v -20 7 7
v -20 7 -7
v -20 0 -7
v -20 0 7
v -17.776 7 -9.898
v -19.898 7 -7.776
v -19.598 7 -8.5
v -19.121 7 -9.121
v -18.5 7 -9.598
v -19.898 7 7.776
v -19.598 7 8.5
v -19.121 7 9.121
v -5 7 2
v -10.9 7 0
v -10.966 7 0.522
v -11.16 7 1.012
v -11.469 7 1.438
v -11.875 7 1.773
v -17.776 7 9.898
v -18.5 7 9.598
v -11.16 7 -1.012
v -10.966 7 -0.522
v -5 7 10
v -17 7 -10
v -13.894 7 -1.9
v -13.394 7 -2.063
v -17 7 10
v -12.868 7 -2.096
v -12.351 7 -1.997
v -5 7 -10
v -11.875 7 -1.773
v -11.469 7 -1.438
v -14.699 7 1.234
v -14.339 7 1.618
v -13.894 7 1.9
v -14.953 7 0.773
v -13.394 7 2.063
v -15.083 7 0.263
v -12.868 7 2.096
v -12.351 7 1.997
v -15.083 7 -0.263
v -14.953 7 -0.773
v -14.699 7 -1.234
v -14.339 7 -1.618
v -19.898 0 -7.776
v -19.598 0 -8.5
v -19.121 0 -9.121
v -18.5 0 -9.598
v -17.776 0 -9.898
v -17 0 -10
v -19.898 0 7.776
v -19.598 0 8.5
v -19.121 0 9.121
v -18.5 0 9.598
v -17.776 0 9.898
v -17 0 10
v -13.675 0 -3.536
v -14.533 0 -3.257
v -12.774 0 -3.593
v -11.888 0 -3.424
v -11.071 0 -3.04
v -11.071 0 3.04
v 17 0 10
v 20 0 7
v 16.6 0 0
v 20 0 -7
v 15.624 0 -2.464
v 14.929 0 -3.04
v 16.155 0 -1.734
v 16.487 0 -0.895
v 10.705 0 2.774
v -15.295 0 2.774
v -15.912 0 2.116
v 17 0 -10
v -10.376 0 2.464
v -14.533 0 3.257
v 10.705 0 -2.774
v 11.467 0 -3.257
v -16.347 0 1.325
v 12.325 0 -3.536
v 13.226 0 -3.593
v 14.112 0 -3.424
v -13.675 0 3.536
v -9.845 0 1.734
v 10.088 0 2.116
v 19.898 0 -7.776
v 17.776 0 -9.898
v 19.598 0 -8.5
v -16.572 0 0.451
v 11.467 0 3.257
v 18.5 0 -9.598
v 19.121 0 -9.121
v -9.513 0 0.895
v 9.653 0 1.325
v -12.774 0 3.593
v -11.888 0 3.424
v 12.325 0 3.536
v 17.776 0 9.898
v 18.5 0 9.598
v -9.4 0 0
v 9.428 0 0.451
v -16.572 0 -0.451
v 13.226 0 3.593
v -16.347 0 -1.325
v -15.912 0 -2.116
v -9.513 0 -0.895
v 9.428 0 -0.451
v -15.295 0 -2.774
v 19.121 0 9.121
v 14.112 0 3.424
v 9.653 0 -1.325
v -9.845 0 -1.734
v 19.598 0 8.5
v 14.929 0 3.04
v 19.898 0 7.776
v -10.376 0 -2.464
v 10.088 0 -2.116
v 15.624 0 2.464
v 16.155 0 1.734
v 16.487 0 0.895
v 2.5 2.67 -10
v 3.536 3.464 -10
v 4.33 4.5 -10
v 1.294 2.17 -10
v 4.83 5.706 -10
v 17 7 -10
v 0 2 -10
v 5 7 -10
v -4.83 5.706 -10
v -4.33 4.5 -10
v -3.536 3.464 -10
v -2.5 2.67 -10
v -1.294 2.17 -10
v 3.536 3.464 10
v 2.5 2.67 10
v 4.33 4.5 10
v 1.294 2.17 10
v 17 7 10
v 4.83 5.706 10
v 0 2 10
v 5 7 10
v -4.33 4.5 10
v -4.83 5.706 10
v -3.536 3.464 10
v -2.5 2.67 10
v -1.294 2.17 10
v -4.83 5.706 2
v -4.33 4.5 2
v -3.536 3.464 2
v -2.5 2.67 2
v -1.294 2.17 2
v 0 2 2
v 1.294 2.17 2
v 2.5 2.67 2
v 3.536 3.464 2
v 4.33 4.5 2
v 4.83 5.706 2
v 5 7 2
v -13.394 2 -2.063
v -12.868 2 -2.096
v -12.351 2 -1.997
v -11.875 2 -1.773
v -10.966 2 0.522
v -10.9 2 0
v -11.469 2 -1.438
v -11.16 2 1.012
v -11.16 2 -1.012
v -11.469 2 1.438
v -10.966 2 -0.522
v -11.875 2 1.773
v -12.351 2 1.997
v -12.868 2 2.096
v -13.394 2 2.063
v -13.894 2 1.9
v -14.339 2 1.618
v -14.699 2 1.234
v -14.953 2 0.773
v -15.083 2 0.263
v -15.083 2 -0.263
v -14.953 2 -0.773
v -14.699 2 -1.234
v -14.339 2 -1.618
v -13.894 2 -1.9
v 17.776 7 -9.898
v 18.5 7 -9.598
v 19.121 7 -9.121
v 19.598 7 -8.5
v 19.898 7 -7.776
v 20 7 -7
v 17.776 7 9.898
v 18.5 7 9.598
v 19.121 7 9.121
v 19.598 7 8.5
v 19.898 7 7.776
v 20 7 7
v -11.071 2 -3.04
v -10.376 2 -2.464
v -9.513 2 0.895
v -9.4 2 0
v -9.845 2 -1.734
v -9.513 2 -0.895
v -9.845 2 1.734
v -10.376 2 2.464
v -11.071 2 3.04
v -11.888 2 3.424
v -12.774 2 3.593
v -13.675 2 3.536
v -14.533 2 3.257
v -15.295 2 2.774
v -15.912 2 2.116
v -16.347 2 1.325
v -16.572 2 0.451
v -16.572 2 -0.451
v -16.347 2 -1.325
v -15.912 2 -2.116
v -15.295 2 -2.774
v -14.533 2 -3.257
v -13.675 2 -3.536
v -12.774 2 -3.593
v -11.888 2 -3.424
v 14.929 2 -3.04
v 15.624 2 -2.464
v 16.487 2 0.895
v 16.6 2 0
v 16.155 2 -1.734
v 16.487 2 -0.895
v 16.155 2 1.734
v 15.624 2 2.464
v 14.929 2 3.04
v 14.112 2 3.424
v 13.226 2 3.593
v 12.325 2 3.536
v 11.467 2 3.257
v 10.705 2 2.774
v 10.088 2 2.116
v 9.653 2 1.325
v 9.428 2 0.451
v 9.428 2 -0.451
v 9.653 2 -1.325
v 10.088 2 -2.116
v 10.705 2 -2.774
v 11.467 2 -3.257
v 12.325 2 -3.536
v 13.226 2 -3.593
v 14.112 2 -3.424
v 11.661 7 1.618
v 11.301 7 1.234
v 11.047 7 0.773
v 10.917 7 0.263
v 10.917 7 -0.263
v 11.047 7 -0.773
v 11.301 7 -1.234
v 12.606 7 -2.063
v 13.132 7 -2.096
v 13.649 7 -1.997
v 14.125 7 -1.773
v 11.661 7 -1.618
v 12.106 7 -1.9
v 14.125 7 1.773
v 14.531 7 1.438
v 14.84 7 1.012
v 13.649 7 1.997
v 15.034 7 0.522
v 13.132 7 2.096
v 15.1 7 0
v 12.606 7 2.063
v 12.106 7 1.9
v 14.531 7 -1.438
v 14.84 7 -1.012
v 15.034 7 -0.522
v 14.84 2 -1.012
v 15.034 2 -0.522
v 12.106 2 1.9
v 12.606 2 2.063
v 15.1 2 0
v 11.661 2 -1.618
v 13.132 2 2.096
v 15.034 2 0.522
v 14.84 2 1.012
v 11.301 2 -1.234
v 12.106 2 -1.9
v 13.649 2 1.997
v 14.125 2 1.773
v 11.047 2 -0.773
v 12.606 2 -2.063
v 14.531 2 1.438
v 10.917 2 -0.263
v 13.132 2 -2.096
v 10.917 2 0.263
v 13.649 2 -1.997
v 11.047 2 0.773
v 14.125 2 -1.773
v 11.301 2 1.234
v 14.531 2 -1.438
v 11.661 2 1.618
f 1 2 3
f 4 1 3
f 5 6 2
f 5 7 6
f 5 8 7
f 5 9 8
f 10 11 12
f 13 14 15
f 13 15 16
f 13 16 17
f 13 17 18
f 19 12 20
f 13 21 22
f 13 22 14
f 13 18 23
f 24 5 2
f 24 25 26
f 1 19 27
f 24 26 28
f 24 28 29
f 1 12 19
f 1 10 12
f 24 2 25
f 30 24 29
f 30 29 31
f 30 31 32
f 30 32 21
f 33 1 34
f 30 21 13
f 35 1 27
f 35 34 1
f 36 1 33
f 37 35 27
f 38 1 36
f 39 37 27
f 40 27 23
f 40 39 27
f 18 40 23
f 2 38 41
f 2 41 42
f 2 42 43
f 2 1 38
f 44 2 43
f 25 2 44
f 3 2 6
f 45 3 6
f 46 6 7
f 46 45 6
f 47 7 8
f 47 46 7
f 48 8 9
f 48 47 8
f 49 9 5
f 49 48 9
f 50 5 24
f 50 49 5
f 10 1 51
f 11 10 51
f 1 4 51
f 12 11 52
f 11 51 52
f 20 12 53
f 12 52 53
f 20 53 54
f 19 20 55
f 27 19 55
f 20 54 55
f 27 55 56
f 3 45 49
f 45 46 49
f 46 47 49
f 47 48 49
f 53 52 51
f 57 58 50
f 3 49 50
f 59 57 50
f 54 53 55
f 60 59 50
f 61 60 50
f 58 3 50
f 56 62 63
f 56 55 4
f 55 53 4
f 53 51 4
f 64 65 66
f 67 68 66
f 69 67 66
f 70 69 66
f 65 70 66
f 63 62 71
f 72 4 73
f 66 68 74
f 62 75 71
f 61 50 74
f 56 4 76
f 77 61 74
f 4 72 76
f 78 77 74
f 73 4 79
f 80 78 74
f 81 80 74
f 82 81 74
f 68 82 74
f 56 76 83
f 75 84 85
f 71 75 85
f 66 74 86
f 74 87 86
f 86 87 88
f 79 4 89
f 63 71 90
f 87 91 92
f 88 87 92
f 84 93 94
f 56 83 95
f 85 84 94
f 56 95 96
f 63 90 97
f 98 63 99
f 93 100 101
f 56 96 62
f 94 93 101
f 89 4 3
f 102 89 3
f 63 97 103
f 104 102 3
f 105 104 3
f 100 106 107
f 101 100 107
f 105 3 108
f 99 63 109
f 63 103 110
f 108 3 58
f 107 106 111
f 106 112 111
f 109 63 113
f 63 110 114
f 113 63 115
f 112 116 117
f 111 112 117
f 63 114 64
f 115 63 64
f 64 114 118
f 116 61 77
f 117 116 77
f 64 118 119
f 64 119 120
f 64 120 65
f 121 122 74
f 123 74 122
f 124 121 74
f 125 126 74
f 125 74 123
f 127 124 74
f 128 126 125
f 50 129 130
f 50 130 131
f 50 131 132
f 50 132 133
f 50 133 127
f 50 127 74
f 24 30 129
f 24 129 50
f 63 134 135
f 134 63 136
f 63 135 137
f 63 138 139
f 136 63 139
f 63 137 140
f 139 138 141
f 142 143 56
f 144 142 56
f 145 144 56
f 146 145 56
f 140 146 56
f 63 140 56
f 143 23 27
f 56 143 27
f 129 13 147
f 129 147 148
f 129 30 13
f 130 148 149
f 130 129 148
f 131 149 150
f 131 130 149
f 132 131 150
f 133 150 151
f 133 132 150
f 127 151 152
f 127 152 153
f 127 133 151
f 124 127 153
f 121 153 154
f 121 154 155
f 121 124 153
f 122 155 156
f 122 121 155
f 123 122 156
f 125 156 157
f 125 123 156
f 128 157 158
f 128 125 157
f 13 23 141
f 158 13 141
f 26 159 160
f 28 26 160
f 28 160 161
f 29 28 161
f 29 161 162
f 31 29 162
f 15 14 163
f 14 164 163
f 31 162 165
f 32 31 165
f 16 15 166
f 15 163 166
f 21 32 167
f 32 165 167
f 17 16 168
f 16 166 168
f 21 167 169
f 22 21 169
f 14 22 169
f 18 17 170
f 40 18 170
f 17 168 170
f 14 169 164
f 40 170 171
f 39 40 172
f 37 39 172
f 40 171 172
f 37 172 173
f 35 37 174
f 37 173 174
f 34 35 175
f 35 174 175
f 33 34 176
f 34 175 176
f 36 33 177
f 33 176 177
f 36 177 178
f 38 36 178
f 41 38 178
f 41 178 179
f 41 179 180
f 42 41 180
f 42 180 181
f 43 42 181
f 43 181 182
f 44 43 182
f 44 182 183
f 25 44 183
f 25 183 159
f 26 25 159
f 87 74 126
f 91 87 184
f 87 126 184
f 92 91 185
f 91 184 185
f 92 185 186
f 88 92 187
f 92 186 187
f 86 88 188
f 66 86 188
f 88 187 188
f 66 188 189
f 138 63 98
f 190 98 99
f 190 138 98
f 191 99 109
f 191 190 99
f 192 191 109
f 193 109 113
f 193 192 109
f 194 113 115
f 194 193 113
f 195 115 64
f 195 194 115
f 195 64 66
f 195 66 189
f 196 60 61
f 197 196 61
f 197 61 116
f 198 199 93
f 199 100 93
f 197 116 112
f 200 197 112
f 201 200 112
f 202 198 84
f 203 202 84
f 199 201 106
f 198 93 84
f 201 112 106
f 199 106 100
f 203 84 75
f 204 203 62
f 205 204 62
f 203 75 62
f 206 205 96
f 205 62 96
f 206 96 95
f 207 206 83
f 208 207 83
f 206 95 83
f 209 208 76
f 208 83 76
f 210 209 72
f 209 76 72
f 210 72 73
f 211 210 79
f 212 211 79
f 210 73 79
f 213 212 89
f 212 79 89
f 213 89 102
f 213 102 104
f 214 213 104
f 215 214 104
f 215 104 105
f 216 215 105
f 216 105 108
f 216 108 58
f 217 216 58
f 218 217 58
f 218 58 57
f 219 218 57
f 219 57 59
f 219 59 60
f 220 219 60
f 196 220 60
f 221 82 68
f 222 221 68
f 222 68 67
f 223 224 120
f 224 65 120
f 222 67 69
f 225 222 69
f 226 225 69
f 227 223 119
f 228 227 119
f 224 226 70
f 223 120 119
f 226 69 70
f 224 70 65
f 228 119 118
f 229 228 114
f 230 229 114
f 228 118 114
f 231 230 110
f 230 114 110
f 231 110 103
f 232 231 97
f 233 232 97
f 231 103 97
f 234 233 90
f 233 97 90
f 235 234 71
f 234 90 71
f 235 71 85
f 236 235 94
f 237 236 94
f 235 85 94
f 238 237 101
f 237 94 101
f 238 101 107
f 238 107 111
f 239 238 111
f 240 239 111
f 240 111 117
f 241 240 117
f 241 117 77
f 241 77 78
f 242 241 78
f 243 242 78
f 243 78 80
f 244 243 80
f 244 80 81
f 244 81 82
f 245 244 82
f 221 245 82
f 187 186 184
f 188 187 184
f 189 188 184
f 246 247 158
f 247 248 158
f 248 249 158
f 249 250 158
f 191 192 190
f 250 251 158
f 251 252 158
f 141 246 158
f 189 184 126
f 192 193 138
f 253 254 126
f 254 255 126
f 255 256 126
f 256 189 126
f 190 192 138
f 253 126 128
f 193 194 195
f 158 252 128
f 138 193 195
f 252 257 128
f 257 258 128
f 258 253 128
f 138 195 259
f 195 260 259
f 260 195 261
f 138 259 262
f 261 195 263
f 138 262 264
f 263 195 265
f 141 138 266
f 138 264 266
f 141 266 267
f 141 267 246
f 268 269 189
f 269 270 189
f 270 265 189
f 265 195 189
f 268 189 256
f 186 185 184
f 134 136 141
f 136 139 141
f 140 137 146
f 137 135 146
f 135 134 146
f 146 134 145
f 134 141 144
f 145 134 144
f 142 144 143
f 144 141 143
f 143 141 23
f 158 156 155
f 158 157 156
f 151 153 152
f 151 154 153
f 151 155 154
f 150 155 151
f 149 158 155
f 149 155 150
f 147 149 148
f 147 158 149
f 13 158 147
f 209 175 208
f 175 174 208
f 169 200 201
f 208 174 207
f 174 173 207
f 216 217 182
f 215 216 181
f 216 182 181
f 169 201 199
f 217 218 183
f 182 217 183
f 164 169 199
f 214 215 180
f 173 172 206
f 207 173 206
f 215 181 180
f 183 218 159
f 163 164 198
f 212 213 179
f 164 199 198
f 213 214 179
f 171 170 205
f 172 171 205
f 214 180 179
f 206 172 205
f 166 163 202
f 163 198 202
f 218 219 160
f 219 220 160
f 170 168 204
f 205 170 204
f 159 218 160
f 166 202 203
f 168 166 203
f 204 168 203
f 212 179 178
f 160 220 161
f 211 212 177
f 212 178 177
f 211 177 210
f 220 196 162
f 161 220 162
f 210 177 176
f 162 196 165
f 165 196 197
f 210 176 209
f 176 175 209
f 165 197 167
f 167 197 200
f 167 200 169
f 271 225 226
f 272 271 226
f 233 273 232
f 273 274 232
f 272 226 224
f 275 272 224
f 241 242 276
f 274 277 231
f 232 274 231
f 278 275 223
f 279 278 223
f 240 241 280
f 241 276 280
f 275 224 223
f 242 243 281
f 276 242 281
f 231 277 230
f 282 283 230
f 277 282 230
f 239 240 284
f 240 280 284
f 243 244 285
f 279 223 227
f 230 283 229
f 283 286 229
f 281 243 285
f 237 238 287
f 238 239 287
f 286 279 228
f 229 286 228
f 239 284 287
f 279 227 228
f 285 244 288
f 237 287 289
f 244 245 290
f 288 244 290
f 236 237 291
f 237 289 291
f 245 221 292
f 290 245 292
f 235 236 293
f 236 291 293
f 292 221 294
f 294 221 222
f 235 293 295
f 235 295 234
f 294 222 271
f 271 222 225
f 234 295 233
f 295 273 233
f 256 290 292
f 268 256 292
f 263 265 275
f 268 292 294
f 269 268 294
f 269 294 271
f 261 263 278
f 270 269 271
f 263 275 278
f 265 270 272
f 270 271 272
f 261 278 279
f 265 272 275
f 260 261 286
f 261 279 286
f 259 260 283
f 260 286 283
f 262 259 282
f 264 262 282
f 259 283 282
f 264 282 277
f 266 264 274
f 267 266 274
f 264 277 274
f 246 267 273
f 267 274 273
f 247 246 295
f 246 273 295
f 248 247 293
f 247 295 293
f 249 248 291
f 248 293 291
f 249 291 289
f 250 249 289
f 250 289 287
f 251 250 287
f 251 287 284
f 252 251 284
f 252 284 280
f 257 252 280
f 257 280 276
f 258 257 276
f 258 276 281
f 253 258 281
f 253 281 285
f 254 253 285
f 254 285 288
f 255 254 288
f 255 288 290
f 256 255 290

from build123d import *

# Parameters (mm, degrees)
PAD_DEPTH       = 10
SKETCH001_R     = 2.1
POCKET_DEPTH    = 10
FILLET_R        = 3
SKETCH002_R     = 3.6
POCKET001_DEPTH = 2
PAD001_DEPTH    = 8


with BuildPart() as part:
    # Sketch → Pad (new body, symmetric)
    with BuildSketch(Plane.XY):
        with BuildLine():
            Line((-20, 7), (-20, 0))
            Line((-20, 0), (20, 0))
            Line((20, 0), (20, 7))
            Line((20, 7), (5, 7))
            ThreePointArc((-5, 7), (0, 2), (5, 7))
            Line((-20, 7), (-5, 7))
        make_face()
    extrude(amount=PAD_DEPTH, both=True)

    # Sketch001 → Pocket (cut)
    with BuildSketch(Plane.XZ):
        with Locations((-13, 0)):
            Circle(SKETCH001_R)
        with Locations((13, 0)):
            Circle(SKETCH001_R)
    extrude(amount=-POCKET_DEPTH, mode=Mode.SUBTRACT)

    # Fillet
    fillet_edges = [part.edges().sort_by_distance(p)[0] for p in [
        (-20, 3.5, -10),
        (20, 3.5, -10),
        (-20, 3.5, 10),
        (20, 3.5, 10),
    ]]
    fillet(fillet_edges, radius=FILLET_R)

    # Sketch002 → Pocket001 (cut)
    with BuildSketch(Plane.XZ):
        with Locations((-13, 0)):
            Circle(SKETCH002_R)
        with Locations((13, 0)):
            Circle(SKETCH002_R)
    extrude(amount=-POCKET001_DEPTH, mode=Mode.SUBTRACT)

    # Sketch003 → Pad001 (new body)
    with BuildSketch(Plane.XY.offset(10)):
        with BuildLine():
            ThreePointArc((-5, 7), (0, 2), (5, 7))
            Line((-5, 7), (5, 7))
        make_face()
    extrude(amount=-PAD001_DEPTH)


solid = part.part
